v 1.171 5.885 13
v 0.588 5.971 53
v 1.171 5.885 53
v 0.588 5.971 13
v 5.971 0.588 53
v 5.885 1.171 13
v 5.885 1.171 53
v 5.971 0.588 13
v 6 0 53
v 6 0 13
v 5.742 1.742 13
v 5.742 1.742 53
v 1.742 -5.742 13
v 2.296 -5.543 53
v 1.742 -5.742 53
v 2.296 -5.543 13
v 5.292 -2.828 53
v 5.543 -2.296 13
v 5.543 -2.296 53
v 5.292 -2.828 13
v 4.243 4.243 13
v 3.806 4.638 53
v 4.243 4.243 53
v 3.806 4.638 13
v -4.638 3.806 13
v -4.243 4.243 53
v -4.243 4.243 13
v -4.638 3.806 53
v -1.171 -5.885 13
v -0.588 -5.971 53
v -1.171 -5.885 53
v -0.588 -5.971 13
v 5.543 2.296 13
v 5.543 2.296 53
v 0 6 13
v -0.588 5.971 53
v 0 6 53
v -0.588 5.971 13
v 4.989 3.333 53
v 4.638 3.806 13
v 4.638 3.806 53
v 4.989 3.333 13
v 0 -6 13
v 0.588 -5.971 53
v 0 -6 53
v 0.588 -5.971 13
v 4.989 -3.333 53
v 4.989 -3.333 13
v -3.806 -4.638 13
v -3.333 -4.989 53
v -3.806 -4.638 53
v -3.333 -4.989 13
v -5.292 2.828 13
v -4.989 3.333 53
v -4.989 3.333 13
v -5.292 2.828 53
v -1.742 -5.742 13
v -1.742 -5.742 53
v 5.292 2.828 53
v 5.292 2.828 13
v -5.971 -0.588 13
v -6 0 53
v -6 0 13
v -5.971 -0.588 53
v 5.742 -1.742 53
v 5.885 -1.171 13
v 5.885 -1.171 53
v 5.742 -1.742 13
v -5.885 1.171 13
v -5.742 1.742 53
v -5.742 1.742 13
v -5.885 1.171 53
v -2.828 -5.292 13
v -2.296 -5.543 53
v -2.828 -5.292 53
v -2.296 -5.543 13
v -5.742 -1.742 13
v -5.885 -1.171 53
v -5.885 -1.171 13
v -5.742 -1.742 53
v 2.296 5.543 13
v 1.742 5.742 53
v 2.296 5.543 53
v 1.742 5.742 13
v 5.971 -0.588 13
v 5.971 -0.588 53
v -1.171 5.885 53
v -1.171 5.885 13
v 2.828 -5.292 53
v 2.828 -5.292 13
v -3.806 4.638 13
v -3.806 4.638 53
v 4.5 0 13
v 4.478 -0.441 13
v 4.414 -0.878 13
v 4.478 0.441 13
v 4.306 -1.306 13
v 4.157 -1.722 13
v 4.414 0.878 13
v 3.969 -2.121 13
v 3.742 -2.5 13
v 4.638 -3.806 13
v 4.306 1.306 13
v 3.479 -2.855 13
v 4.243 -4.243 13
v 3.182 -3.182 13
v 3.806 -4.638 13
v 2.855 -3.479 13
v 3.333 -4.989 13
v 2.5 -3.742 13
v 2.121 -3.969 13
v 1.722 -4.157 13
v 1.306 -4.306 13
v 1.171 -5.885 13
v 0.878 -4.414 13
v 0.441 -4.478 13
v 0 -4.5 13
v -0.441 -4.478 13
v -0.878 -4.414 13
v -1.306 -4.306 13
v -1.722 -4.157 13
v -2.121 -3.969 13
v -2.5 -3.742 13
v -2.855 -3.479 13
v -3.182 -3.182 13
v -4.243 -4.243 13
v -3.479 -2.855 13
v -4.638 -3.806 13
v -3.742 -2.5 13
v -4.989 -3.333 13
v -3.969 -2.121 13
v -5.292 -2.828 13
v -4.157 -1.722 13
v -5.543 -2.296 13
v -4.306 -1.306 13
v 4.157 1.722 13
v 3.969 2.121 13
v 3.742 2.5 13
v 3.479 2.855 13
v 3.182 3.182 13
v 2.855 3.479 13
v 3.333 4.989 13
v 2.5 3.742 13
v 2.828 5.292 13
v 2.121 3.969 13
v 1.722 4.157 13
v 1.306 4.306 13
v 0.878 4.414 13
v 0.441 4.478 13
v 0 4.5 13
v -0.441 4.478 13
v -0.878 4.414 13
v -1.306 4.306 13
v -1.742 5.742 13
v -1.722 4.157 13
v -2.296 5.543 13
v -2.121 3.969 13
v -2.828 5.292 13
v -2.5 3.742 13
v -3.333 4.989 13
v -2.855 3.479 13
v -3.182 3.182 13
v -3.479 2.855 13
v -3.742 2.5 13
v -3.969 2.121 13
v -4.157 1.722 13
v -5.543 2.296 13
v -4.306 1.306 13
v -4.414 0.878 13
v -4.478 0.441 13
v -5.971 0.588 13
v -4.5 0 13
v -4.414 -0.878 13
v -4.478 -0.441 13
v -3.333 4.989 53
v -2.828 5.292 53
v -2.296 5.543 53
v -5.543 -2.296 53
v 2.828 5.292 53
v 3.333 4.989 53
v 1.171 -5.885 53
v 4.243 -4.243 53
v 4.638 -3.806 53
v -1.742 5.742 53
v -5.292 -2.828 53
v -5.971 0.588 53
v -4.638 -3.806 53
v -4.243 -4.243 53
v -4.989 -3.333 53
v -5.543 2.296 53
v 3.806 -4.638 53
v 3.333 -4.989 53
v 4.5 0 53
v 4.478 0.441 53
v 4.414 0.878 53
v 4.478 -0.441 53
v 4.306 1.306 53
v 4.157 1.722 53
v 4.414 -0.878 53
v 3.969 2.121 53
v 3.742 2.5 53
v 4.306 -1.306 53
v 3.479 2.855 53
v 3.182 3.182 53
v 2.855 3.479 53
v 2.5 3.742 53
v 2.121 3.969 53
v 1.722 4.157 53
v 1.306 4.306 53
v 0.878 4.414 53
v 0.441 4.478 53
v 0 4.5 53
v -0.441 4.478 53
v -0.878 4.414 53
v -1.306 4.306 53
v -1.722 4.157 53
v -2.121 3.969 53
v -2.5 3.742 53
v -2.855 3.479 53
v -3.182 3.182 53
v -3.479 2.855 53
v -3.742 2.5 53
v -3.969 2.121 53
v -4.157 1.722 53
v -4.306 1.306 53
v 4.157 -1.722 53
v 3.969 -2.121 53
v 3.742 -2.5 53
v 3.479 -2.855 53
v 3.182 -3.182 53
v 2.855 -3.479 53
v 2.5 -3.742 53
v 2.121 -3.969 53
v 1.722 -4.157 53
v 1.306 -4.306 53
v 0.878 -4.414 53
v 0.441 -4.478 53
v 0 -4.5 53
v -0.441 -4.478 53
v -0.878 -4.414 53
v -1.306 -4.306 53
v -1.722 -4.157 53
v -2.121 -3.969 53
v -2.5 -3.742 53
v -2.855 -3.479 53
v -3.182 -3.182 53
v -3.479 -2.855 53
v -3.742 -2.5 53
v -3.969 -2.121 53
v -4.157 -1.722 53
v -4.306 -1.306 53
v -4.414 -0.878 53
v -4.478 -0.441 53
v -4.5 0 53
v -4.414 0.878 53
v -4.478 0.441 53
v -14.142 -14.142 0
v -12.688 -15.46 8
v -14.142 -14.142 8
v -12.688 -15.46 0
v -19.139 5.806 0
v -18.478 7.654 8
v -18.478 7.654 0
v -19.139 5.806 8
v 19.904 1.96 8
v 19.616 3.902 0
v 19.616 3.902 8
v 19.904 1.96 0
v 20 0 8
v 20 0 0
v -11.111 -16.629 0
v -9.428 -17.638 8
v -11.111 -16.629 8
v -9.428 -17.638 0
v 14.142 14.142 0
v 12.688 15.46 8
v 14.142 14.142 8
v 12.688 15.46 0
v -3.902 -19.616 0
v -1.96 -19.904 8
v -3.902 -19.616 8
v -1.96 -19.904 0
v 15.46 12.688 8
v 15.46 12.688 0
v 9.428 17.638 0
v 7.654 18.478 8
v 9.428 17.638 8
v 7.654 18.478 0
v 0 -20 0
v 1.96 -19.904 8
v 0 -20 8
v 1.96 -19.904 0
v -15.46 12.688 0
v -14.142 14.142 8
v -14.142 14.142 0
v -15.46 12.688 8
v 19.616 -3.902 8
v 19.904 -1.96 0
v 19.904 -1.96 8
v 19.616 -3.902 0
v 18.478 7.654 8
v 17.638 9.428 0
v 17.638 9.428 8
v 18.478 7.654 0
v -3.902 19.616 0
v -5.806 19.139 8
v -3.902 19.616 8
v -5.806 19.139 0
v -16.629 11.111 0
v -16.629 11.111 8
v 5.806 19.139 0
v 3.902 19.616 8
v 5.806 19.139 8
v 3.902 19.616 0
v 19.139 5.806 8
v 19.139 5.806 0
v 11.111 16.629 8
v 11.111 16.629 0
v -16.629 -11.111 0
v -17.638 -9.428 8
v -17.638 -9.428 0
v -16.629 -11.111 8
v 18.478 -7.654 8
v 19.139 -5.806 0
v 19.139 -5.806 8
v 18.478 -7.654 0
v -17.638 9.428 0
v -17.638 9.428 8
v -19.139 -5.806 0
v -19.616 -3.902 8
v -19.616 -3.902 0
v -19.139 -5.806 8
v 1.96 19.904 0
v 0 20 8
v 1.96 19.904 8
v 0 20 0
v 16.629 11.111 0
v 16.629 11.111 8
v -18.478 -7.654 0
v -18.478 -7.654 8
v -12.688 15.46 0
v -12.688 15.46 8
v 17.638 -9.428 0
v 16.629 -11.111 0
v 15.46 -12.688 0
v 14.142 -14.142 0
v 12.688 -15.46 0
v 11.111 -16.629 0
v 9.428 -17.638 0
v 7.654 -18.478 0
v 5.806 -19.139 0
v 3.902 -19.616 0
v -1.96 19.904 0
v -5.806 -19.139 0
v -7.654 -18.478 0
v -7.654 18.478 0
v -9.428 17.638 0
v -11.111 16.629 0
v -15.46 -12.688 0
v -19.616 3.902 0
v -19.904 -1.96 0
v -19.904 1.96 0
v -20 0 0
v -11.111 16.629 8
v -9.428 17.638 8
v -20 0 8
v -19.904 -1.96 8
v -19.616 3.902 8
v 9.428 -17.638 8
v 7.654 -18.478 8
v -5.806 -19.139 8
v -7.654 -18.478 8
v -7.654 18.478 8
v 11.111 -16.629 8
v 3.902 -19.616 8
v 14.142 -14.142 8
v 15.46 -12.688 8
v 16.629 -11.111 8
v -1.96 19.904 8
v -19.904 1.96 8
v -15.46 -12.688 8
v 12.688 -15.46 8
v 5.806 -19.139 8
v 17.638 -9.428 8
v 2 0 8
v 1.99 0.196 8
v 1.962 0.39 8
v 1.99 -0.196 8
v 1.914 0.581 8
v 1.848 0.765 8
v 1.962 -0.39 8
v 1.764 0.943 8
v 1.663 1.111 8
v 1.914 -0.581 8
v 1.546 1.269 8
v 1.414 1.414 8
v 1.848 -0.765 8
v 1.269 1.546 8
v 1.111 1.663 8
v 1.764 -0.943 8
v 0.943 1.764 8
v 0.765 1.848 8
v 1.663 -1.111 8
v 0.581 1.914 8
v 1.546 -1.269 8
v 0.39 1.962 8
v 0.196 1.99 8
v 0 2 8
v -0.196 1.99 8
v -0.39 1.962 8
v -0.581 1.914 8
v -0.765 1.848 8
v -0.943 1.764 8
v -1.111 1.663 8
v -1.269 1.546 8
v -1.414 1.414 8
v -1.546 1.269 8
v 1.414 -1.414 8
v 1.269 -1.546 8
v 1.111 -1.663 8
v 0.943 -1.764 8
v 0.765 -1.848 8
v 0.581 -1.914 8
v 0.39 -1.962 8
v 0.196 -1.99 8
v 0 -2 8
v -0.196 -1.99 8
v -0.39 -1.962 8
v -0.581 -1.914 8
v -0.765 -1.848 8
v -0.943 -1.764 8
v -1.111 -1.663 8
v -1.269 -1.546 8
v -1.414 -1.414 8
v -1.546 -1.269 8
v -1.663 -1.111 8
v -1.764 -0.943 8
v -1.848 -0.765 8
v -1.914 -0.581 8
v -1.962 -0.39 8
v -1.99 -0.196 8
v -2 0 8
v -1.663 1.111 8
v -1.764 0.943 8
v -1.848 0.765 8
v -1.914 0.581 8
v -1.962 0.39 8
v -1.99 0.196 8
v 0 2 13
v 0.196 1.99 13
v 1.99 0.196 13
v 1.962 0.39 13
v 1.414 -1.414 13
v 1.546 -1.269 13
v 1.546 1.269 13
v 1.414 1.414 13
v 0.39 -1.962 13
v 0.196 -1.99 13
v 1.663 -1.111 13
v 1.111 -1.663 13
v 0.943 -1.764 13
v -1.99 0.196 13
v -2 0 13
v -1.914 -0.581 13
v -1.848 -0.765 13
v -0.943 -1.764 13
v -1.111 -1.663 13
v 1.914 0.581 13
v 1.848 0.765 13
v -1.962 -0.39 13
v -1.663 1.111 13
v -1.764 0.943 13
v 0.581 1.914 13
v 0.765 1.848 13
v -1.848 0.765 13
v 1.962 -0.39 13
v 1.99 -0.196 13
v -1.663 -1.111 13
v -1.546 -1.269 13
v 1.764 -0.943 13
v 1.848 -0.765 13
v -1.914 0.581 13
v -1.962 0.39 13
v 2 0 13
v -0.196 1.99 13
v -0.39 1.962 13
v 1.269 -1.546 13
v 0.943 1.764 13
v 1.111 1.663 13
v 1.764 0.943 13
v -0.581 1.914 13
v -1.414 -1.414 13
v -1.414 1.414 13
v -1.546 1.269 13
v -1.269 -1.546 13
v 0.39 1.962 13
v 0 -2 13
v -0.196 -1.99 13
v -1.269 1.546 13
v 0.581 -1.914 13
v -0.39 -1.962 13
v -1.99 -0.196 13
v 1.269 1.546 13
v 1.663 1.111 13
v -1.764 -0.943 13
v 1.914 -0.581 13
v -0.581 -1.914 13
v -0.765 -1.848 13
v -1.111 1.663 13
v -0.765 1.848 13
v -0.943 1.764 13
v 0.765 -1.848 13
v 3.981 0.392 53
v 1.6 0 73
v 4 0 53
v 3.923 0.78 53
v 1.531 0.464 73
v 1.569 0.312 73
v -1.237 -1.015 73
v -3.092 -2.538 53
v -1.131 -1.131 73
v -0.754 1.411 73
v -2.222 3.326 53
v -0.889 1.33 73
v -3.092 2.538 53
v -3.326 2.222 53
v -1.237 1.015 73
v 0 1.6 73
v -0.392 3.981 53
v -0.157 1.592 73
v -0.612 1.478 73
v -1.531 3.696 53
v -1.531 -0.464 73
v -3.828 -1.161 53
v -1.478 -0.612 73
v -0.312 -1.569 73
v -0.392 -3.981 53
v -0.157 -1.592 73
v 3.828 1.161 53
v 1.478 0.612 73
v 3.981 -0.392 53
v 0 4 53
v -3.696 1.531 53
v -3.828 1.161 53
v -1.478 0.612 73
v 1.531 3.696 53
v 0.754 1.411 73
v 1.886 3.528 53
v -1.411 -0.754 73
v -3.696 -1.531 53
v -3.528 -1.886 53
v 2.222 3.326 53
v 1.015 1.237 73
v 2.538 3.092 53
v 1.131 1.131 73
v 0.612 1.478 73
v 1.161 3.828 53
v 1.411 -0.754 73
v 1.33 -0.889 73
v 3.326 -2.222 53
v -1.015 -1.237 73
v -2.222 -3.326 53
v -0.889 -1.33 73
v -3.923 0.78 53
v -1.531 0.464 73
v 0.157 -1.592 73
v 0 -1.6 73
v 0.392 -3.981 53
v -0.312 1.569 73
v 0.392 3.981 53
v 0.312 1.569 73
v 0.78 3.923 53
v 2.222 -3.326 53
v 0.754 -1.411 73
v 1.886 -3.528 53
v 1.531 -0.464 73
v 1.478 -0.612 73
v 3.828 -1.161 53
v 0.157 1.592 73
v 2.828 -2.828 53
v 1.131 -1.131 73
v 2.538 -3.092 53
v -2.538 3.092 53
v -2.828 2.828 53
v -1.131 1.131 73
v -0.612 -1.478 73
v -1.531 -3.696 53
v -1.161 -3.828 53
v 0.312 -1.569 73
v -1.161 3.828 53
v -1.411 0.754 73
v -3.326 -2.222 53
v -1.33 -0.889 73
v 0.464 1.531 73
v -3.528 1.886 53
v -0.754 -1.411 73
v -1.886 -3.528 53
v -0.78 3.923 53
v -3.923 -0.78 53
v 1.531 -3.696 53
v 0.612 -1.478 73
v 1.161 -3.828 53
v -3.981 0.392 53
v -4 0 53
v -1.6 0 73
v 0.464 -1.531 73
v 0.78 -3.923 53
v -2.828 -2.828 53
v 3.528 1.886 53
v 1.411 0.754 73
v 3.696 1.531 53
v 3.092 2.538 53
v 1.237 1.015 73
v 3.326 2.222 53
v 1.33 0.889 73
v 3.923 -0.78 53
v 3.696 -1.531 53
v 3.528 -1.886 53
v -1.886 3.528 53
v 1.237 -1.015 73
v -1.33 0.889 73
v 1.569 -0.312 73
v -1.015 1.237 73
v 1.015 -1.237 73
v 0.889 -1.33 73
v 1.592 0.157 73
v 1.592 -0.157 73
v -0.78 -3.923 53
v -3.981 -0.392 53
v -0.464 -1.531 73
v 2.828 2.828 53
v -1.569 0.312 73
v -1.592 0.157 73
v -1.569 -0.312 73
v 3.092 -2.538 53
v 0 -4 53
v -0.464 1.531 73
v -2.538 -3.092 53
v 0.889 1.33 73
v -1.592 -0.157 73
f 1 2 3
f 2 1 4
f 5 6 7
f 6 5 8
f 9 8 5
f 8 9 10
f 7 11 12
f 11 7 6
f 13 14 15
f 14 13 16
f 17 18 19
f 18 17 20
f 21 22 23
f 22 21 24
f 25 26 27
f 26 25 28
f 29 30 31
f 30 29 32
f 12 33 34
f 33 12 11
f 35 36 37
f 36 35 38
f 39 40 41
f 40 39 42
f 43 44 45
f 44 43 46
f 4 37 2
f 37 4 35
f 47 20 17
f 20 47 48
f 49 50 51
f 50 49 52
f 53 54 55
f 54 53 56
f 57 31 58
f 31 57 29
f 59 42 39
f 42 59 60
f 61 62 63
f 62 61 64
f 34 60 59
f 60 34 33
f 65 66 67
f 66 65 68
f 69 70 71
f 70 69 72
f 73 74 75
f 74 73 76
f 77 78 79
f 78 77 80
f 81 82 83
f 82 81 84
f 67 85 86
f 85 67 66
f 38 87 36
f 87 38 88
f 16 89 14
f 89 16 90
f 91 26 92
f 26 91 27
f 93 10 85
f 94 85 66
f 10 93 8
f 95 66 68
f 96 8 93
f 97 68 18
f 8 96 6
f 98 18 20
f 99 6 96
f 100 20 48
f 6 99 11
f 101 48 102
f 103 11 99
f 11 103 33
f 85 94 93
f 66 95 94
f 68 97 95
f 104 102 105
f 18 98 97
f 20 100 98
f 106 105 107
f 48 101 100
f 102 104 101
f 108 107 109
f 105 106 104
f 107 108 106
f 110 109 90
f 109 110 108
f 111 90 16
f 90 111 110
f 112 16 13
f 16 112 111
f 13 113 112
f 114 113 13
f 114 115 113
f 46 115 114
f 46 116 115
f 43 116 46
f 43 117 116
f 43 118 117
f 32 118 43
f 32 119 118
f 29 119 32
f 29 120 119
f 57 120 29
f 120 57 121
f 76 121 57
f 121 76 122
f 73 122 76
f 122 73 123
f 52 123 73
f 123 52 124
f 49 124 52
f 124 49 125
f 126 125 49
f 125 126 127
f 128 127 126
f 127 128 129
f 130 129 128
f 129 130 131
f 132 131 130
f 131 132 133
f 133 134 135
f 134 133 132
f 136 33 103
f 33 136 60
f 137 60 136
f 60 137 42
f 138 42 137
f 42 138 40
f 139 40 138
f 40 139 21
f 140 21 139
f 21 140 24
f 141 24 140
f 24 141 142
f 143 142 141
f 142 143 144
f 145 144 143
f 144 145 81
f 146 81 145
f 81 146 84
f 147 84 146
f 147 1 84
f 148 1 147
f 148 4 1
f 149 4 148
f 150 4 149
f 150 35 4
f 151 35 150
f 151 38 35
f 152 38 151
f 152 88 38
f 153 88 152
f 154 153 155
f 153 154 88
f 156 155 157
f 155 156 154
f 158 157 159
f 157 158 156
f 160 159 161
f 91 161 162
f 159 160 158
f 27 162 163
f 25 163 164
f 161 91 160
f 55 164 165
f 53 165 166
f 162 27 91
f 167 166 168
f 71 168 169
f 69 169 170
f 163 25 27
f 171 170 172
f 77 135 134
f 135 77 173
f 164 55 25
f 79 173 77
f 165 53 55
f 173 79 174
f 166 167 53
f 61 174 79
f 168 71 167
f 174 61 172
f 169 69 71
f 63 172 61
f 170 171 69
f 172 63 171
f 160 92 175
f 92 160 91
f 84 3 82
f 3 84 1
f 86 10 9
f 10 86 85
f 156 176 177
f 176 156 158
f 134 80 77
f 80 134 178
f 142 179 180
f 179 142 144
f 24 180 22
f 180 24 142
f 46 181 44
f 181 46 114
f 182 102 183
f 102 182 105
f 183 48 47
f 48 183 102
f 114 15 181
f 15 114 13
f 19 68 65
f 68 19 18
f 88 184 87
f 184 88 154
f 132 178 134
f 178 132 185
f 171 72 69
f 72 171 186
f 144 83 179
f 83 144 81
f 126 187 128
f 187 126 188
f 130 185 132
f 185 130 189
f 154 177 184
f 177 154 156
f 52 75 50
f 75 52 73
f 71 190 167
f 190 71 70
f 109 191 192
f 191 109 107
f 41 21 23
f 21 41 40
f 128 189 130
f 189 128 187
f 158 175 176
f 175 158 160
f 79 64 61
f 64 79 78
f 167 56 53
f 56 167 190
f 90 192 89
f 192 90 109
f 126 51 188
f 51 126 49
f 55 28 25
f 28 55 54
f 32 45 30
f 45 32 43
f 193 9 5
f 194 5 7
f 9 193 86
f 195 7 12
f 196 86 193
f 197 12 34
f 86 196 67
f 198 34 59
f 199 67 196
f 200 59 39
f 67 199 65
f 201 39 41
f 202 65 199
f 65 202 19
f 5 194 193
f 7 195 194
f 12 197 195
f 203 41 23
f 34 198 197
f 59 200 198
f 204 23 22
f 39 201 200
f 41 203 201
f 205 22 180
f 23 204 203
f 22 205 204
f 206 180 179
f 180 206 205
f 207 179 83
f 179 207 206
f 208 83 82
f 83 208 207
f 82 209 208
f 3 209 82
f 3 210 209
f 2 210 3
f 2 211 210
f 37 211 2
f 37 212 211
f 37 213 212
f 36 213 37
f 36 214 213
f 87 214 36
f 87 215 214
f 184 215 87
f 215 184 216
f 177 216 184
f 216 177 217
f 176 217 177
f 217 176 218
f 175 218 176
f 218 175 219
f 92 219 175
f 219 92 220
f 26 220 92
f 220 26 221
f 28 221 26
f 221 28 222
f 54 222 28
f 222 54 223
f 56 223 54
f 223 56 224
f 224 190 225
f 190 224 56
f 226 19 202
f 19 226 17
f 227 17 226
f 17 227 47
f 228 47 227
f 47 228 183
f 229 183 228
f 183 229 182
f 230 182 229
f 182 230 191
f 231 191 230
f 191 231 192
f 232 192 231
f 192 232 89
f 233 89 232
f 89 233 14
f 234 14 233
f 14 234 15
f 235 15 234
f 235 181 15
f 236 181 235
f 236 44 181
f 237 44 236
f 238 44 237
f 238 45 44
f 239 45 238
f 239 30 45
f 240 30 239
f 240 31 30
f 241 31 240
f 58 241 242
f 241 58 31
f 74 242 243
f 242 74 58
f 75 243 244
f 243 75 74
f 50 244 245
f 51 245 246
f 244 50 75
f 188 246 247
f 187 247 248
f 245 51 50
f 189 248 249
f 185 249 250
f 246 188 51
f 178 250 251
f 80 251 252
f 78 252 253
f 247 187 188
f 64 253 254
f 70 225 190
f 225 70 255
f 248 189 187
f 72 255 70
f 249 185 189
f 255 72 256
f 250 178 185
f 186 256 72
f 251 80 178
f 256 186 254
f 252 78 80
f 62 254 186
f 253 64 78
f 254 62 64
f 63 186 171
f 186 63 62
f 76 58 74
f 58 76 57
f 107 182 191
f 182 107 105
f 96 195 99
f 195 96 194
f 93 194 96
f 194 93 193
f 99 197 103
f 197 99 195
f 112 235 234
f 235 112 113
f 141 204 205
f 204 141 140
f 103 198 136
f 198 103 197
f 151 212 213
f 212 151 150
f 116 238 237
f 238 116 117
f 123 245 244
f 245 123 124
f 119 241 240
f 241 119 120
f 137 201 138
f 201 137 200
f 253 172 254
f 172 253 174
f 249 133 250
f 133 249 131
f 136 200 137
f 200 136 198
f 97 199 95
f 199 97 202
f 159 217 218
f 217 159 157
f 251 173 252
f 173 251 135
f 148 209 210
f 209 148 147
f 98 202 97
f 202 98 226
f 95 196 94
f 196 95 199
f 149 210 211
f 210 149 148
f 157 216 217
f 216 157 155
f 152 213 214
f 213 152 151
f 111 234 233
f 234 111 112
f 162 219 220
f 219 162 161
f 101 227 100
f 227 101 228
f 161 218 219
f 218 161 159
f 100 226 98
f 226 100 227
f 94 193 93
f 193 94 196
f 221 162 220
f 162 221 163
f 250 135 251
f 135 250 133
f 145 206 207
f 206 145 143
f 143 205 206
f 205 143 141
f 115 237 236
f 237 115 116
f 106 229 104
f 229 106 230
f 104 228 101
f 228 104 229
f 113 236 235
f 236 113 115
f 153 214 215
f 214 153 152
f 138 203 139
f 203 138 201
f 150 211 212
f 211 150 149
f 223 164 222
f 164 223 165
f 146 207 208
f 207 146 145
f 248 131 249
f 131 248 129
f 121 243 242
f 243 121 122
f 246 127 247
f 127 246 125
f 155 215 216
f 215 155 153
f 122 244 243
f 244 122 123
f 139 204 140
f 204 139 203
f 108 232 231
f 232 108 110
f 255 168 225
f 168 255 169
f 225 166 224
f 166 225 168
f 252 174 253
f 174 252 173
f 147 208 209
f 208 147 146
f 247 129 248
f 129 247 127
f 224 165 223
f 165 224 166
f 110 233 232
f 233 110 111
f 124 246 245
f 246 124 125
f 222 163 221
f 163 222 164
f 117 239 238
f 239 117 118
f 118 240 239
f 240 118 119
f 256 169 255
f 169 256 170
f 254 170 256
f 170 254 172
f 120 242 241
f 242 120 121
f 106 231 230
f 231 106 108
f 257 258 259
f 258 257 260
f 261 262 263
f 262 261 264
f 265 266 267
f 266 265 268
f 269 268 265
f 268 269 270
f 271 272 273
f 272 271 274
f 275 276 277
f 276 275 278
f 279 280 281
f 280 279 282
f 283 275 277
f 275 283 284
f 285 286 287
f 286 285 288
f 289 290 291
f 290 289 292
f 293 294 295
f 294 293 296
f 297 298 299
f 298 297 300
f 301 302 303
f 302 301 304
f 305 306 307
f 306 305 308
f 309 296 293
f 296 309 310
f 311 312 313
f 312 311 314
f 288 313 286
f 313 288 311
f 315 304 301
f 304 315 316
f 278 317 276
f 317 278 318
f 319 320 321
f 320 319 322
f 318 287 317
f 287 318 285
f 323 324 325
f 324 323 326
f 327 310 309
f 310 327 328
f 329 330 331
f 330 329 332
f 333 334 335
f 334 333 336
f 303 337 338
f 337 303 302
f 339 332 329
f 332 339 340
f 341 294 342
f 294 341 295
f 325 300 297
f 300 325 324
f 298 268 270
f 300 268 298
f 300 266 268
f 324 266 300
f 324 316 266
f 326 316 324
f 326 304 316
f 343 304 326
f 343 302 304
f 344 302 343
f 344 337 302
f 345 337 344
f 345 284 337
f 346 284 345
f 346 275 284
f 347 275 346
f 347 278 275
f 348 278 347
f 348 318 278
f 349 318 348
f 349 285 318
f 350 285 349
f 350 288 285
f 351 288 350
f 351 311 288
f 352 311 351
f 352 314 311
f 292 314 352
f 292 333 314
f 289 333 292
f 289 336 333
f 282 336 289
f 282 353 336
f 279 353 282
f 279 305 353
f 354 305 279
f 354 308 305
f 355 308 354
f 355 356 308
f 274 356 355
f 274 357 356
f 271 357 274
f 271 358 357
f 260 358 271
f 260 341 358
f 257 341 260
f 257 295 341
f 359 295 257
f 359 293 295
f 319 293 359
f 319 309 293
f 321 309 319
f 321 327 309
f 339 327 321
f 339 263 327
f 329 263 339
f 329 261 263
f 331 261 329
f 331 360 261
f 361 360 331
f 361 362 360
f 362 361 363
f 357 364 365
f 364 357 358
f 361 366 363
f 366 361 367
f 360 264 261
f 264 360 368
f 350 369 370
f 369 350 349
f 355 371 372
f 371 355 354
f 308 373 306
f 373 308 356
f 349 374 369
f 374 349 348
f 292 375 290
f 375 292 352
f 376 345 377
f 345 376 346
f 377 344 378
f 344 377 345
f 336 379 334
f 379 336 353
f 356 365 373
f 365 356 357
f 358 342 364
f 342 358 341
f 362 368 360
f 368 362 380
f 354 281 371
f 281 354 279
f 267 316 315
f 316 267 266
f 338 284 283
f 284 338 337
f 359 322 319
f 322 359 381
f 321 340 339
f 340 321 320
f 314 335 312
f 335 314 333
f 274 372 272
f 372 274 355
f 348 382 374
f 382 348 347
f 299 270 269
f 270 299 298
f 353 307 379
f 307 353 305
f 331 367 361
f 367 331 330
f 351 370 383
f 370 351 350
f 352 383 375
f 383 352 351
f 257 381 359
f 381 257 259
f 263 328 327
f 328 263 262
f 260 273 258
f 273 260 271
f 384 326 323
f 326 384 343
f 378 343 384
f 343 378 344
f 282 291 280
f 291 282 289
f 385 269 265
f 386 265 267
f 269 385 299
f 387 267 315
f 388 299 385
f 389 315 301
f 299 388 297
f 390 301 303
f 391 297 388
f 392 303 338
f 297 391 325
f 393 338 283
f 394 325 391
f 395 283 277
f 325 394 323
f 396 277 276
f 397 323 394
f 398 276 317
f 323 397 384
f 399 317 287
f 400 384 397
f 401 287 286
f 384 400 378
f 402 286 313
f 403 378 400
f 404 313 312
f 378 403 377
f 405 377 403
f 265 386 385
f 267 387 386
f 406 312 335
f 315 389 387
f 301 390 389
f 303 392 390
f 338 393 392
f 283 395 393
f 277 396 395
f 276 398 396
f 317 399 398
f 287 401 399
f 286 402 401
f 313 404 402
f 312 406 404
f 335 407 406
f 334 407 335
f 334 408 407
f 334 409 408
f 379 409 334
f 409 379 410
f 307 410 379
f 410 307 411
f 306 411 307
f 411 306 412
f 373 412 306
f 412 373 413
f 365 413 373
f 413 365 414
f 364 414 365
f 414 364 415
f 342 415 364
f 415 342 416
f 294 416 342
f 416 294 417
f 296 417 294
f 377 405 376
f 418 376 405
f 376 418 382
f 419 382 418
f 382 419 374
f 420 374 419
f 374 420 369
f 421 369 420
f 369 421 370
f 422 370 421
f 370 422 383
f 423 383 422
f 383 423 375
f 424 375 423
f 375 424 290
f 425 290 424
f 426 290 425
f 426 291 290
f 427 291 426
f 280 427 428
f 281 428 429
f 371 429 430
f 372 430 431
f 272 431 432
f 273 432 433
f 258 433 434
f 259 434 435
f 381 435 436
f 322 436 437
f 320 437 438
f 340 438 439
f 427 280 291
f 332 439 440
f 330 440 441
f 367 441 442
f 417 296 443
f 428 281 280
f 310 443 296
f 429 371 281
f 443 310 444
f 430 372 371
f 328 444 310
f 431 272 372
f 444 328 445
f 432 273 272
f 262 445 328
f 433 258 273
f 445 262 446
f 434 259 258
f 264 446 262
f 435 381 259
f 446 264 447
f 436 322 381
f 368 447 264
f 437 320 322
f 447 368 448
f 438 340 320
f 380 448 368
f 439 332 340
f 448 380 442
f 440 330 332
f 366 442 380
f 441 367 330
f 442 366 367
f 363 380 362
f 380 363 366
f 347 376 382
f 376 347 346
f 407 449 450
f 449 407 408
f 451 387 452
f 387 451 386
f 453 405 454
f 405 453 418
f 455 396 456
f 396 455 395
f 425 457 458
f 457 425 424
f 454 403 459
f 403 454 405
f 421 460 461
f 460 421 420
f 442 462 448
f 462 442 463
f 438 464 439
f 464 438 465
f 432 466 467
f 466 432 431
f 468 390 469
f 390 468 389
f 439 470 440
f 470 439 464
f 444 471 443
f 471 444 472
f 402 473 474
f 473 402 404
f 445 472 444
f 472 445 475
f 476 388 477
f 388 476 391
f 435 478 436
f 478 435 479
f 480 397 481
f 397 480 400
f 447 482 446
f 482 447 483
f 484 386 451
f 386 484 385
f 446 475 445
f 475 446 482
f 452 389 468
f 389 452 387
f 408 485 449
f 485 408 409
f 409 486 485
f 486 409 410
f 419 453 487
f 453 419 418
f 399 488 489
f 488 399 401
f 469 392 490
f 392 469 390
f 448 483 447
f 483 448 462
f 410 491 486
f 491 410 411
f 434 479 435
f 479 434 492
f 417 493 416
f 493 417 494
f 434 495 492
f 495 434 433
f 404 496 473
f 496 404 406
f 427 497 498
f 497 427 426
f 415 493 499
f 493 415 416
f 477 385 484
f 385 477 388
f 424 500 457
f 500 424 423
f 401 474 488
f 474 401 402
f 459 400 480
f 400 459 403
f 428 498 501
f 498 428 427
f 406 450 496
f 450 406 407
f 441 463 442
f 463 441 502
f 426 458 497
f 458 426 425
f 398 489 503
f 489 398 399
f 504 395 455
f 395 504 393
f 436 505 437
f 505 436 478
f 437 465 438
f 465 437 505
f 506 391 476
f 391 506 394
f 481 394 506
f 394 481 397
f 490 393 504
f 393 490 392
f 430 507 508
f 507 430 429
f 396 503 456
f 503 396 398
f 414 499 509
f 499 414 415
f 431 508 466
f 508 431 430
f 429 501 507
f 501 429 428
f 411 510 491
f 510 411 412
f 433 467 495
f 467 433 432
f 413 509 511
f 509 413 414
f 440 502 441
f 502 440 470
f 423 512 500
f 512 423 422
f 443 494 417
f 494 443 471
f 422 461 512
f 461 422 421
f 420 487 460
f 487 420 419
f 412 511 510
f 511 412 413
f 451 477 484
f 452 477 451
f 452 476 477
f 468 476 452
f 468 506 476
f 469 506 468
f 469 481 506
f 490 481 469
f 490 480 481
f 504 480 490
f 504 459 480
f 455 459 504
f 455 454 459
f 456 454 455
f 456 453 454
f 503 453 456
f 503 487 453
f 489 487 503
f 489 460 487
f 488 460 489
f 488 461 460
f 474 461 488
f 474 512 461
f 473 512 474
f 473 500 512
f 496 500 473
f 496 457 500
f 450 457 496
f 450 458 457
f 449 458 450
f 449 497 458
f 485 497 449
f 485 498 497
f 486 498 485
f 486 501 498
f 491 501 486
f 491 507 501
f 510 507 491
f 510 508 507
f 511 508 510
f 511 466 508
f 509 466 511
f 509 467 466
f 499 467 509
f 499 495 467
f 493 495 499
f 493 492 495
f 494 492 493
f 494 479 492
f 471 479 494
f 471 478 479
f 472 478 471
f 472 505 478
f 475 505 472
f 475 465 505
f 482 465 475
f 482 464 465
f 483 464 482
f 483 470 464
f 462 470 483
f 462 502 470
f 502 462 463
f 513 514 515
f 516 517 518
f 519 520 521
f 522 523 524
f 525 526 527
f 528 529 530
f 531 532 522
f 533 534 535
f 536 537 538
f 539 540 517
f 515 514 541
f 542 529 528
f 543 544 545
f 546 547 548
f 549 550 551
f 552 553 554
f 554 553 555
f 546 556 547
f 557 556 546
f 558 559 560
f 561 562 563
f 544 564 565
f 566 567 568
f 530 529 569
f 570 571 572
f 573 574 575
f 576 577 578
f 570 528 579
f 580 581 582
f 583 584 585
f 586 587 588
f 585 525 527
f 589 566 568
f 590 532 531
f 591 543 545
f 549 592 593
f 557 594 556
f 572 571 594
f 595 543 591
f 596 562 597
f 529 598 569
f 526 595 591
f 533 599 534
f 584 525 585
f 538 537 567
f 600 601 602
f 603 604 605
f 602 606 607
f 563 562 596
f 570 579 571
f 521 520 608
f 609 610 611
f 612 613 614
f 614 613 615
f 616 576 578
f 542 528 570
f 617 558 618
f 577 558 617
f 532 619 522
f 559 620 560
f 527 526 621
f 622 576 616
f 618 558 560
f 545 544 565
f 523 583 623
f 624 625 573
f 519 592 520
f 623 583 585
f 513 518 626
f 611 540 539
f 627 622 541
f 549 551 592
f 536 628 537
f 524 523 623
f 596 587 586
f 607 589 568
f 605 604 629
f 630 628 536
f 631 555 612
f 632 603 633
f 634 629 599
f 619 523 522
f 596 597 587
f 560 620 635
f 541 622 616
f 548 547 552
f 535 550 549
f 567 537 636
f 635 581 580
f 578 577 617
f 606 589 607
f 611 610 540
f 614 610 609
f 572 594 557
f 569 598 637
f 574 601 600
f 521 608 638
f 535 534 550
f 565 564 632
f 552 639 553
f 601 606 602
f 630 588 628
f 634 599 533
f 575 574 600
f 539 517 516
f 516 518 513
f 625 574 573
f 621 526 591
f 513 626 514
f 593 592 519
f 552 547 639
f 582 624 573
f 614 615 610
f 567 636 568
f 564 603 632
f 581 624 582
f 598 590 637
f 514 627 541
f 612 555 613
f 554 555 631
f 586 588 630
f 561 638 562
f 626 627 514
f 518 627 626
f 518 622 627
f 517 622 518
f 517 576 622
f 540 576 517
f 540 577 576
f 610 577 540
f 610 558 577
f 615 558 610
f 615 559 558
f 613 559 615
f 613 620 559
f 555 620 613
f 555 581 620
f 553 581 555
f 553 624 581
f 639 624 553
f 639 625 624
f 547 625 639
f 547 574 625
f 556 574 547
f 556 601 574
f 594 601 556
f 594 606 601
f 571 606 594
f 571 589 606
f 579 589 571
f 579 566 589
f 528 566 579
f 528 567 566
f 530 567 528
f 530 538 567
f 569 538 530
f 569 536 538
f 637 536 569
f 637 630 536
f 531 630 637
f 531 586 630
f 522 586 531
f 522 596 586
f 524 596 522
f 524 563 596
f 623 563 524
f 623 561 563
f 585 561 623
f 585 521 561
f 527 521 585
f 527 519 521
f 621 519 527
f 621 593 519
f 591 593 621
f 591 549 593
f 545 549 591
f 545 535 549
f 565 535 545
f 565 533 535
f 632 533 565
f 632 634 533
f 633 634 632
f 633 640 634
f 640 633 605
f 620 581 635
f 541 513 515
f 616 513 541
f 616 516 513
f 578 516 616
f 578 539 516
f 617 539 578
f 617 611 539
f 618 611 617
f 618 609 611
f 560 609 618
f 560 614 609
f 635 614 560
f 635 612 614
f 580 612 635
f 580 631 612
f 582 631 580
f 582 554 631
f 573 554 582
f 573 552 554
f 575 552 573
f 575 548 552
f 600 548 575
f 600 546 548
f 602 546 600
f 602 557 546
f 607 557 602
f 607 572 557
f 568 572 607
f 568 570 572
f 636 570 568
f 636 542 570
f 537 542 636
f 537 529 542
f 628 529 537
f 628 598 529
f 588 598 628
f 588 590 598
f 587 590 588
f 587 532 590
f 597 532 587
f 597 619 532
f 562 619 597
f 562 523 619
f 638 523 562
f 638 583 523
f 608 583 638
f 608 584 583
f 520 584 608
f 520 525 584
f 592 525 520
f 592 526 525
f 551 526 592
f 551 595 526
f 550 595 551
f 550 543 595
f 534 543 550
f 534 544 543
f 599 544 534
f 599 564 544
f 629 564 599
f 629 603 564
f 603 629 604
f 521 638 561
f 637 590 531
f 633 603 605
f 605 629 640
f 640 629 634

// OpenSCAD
// 구조도 (Structural Diagram)
// 3단 원통 안테나 구조 — 각 부품의 위치·크기 관계를 보여준다

$fn = 64;

// ── 색상 팔레트 ──────────────────────────────
BASE_COLOR  = [0.85, 0.85, 0.85];   // 연회색  — 기저부
MID_COLOR   = [0.60, 0.80, 1.00];   // 하늘색  — 중간 도체
TOP_COLOR   = [1.00, 0.75, 0.30];   // 황금색  — 상단 방사체

// ── 치수 ─────────────────────────────────────
BASE_R  = 20;  BASE_H  = 8;
MID_R   = 6;   MID_H   = 40;
TOP_R   = 4;   TOP_H   = 20;
FEED_R  = 2;   FEED_H  = 5;

// ── 부품 정의 ─────────────────────────────────

// (1) 기저 플레이트
module base_plate() {
    color(BASE_COLOR)
    cylinder(r=BASE_R, h=BASE_H, center=false);
}

// (2) 동축 피드 핀
module feed_pin() {
    color([0.3, 0.3, 0.3])
    translate([0, 0, BASE_H])
        cylinder(r=FEED_R, h=FEED_H, center=false);
}

// (3) 중간 도체 슬리브
module mid_sleeve() {
    color(MID_COLOR)
    translate([0, 0, BASE_H + FEED_H])
        difference() {
            cylinder(r=MID_R,     h=MID_H, center=false);
            cylinder(r=MID_R-1.5, h=MID_H, center=false);
        }
}

// (4) 상단 방사 소자
module top_element() {
    color(TOP_COLOR)
    translate([0, 0, BASE_H + FEED_H + MID_H])
        cylinder(r1=TOP_R, r2=TOP_R*0.4, h=TOP_H, center=false);
}

// ── 조립 ─────────────────────────────────────
base_plate();
feed_pin();
mid_sleeve();
top_element();
